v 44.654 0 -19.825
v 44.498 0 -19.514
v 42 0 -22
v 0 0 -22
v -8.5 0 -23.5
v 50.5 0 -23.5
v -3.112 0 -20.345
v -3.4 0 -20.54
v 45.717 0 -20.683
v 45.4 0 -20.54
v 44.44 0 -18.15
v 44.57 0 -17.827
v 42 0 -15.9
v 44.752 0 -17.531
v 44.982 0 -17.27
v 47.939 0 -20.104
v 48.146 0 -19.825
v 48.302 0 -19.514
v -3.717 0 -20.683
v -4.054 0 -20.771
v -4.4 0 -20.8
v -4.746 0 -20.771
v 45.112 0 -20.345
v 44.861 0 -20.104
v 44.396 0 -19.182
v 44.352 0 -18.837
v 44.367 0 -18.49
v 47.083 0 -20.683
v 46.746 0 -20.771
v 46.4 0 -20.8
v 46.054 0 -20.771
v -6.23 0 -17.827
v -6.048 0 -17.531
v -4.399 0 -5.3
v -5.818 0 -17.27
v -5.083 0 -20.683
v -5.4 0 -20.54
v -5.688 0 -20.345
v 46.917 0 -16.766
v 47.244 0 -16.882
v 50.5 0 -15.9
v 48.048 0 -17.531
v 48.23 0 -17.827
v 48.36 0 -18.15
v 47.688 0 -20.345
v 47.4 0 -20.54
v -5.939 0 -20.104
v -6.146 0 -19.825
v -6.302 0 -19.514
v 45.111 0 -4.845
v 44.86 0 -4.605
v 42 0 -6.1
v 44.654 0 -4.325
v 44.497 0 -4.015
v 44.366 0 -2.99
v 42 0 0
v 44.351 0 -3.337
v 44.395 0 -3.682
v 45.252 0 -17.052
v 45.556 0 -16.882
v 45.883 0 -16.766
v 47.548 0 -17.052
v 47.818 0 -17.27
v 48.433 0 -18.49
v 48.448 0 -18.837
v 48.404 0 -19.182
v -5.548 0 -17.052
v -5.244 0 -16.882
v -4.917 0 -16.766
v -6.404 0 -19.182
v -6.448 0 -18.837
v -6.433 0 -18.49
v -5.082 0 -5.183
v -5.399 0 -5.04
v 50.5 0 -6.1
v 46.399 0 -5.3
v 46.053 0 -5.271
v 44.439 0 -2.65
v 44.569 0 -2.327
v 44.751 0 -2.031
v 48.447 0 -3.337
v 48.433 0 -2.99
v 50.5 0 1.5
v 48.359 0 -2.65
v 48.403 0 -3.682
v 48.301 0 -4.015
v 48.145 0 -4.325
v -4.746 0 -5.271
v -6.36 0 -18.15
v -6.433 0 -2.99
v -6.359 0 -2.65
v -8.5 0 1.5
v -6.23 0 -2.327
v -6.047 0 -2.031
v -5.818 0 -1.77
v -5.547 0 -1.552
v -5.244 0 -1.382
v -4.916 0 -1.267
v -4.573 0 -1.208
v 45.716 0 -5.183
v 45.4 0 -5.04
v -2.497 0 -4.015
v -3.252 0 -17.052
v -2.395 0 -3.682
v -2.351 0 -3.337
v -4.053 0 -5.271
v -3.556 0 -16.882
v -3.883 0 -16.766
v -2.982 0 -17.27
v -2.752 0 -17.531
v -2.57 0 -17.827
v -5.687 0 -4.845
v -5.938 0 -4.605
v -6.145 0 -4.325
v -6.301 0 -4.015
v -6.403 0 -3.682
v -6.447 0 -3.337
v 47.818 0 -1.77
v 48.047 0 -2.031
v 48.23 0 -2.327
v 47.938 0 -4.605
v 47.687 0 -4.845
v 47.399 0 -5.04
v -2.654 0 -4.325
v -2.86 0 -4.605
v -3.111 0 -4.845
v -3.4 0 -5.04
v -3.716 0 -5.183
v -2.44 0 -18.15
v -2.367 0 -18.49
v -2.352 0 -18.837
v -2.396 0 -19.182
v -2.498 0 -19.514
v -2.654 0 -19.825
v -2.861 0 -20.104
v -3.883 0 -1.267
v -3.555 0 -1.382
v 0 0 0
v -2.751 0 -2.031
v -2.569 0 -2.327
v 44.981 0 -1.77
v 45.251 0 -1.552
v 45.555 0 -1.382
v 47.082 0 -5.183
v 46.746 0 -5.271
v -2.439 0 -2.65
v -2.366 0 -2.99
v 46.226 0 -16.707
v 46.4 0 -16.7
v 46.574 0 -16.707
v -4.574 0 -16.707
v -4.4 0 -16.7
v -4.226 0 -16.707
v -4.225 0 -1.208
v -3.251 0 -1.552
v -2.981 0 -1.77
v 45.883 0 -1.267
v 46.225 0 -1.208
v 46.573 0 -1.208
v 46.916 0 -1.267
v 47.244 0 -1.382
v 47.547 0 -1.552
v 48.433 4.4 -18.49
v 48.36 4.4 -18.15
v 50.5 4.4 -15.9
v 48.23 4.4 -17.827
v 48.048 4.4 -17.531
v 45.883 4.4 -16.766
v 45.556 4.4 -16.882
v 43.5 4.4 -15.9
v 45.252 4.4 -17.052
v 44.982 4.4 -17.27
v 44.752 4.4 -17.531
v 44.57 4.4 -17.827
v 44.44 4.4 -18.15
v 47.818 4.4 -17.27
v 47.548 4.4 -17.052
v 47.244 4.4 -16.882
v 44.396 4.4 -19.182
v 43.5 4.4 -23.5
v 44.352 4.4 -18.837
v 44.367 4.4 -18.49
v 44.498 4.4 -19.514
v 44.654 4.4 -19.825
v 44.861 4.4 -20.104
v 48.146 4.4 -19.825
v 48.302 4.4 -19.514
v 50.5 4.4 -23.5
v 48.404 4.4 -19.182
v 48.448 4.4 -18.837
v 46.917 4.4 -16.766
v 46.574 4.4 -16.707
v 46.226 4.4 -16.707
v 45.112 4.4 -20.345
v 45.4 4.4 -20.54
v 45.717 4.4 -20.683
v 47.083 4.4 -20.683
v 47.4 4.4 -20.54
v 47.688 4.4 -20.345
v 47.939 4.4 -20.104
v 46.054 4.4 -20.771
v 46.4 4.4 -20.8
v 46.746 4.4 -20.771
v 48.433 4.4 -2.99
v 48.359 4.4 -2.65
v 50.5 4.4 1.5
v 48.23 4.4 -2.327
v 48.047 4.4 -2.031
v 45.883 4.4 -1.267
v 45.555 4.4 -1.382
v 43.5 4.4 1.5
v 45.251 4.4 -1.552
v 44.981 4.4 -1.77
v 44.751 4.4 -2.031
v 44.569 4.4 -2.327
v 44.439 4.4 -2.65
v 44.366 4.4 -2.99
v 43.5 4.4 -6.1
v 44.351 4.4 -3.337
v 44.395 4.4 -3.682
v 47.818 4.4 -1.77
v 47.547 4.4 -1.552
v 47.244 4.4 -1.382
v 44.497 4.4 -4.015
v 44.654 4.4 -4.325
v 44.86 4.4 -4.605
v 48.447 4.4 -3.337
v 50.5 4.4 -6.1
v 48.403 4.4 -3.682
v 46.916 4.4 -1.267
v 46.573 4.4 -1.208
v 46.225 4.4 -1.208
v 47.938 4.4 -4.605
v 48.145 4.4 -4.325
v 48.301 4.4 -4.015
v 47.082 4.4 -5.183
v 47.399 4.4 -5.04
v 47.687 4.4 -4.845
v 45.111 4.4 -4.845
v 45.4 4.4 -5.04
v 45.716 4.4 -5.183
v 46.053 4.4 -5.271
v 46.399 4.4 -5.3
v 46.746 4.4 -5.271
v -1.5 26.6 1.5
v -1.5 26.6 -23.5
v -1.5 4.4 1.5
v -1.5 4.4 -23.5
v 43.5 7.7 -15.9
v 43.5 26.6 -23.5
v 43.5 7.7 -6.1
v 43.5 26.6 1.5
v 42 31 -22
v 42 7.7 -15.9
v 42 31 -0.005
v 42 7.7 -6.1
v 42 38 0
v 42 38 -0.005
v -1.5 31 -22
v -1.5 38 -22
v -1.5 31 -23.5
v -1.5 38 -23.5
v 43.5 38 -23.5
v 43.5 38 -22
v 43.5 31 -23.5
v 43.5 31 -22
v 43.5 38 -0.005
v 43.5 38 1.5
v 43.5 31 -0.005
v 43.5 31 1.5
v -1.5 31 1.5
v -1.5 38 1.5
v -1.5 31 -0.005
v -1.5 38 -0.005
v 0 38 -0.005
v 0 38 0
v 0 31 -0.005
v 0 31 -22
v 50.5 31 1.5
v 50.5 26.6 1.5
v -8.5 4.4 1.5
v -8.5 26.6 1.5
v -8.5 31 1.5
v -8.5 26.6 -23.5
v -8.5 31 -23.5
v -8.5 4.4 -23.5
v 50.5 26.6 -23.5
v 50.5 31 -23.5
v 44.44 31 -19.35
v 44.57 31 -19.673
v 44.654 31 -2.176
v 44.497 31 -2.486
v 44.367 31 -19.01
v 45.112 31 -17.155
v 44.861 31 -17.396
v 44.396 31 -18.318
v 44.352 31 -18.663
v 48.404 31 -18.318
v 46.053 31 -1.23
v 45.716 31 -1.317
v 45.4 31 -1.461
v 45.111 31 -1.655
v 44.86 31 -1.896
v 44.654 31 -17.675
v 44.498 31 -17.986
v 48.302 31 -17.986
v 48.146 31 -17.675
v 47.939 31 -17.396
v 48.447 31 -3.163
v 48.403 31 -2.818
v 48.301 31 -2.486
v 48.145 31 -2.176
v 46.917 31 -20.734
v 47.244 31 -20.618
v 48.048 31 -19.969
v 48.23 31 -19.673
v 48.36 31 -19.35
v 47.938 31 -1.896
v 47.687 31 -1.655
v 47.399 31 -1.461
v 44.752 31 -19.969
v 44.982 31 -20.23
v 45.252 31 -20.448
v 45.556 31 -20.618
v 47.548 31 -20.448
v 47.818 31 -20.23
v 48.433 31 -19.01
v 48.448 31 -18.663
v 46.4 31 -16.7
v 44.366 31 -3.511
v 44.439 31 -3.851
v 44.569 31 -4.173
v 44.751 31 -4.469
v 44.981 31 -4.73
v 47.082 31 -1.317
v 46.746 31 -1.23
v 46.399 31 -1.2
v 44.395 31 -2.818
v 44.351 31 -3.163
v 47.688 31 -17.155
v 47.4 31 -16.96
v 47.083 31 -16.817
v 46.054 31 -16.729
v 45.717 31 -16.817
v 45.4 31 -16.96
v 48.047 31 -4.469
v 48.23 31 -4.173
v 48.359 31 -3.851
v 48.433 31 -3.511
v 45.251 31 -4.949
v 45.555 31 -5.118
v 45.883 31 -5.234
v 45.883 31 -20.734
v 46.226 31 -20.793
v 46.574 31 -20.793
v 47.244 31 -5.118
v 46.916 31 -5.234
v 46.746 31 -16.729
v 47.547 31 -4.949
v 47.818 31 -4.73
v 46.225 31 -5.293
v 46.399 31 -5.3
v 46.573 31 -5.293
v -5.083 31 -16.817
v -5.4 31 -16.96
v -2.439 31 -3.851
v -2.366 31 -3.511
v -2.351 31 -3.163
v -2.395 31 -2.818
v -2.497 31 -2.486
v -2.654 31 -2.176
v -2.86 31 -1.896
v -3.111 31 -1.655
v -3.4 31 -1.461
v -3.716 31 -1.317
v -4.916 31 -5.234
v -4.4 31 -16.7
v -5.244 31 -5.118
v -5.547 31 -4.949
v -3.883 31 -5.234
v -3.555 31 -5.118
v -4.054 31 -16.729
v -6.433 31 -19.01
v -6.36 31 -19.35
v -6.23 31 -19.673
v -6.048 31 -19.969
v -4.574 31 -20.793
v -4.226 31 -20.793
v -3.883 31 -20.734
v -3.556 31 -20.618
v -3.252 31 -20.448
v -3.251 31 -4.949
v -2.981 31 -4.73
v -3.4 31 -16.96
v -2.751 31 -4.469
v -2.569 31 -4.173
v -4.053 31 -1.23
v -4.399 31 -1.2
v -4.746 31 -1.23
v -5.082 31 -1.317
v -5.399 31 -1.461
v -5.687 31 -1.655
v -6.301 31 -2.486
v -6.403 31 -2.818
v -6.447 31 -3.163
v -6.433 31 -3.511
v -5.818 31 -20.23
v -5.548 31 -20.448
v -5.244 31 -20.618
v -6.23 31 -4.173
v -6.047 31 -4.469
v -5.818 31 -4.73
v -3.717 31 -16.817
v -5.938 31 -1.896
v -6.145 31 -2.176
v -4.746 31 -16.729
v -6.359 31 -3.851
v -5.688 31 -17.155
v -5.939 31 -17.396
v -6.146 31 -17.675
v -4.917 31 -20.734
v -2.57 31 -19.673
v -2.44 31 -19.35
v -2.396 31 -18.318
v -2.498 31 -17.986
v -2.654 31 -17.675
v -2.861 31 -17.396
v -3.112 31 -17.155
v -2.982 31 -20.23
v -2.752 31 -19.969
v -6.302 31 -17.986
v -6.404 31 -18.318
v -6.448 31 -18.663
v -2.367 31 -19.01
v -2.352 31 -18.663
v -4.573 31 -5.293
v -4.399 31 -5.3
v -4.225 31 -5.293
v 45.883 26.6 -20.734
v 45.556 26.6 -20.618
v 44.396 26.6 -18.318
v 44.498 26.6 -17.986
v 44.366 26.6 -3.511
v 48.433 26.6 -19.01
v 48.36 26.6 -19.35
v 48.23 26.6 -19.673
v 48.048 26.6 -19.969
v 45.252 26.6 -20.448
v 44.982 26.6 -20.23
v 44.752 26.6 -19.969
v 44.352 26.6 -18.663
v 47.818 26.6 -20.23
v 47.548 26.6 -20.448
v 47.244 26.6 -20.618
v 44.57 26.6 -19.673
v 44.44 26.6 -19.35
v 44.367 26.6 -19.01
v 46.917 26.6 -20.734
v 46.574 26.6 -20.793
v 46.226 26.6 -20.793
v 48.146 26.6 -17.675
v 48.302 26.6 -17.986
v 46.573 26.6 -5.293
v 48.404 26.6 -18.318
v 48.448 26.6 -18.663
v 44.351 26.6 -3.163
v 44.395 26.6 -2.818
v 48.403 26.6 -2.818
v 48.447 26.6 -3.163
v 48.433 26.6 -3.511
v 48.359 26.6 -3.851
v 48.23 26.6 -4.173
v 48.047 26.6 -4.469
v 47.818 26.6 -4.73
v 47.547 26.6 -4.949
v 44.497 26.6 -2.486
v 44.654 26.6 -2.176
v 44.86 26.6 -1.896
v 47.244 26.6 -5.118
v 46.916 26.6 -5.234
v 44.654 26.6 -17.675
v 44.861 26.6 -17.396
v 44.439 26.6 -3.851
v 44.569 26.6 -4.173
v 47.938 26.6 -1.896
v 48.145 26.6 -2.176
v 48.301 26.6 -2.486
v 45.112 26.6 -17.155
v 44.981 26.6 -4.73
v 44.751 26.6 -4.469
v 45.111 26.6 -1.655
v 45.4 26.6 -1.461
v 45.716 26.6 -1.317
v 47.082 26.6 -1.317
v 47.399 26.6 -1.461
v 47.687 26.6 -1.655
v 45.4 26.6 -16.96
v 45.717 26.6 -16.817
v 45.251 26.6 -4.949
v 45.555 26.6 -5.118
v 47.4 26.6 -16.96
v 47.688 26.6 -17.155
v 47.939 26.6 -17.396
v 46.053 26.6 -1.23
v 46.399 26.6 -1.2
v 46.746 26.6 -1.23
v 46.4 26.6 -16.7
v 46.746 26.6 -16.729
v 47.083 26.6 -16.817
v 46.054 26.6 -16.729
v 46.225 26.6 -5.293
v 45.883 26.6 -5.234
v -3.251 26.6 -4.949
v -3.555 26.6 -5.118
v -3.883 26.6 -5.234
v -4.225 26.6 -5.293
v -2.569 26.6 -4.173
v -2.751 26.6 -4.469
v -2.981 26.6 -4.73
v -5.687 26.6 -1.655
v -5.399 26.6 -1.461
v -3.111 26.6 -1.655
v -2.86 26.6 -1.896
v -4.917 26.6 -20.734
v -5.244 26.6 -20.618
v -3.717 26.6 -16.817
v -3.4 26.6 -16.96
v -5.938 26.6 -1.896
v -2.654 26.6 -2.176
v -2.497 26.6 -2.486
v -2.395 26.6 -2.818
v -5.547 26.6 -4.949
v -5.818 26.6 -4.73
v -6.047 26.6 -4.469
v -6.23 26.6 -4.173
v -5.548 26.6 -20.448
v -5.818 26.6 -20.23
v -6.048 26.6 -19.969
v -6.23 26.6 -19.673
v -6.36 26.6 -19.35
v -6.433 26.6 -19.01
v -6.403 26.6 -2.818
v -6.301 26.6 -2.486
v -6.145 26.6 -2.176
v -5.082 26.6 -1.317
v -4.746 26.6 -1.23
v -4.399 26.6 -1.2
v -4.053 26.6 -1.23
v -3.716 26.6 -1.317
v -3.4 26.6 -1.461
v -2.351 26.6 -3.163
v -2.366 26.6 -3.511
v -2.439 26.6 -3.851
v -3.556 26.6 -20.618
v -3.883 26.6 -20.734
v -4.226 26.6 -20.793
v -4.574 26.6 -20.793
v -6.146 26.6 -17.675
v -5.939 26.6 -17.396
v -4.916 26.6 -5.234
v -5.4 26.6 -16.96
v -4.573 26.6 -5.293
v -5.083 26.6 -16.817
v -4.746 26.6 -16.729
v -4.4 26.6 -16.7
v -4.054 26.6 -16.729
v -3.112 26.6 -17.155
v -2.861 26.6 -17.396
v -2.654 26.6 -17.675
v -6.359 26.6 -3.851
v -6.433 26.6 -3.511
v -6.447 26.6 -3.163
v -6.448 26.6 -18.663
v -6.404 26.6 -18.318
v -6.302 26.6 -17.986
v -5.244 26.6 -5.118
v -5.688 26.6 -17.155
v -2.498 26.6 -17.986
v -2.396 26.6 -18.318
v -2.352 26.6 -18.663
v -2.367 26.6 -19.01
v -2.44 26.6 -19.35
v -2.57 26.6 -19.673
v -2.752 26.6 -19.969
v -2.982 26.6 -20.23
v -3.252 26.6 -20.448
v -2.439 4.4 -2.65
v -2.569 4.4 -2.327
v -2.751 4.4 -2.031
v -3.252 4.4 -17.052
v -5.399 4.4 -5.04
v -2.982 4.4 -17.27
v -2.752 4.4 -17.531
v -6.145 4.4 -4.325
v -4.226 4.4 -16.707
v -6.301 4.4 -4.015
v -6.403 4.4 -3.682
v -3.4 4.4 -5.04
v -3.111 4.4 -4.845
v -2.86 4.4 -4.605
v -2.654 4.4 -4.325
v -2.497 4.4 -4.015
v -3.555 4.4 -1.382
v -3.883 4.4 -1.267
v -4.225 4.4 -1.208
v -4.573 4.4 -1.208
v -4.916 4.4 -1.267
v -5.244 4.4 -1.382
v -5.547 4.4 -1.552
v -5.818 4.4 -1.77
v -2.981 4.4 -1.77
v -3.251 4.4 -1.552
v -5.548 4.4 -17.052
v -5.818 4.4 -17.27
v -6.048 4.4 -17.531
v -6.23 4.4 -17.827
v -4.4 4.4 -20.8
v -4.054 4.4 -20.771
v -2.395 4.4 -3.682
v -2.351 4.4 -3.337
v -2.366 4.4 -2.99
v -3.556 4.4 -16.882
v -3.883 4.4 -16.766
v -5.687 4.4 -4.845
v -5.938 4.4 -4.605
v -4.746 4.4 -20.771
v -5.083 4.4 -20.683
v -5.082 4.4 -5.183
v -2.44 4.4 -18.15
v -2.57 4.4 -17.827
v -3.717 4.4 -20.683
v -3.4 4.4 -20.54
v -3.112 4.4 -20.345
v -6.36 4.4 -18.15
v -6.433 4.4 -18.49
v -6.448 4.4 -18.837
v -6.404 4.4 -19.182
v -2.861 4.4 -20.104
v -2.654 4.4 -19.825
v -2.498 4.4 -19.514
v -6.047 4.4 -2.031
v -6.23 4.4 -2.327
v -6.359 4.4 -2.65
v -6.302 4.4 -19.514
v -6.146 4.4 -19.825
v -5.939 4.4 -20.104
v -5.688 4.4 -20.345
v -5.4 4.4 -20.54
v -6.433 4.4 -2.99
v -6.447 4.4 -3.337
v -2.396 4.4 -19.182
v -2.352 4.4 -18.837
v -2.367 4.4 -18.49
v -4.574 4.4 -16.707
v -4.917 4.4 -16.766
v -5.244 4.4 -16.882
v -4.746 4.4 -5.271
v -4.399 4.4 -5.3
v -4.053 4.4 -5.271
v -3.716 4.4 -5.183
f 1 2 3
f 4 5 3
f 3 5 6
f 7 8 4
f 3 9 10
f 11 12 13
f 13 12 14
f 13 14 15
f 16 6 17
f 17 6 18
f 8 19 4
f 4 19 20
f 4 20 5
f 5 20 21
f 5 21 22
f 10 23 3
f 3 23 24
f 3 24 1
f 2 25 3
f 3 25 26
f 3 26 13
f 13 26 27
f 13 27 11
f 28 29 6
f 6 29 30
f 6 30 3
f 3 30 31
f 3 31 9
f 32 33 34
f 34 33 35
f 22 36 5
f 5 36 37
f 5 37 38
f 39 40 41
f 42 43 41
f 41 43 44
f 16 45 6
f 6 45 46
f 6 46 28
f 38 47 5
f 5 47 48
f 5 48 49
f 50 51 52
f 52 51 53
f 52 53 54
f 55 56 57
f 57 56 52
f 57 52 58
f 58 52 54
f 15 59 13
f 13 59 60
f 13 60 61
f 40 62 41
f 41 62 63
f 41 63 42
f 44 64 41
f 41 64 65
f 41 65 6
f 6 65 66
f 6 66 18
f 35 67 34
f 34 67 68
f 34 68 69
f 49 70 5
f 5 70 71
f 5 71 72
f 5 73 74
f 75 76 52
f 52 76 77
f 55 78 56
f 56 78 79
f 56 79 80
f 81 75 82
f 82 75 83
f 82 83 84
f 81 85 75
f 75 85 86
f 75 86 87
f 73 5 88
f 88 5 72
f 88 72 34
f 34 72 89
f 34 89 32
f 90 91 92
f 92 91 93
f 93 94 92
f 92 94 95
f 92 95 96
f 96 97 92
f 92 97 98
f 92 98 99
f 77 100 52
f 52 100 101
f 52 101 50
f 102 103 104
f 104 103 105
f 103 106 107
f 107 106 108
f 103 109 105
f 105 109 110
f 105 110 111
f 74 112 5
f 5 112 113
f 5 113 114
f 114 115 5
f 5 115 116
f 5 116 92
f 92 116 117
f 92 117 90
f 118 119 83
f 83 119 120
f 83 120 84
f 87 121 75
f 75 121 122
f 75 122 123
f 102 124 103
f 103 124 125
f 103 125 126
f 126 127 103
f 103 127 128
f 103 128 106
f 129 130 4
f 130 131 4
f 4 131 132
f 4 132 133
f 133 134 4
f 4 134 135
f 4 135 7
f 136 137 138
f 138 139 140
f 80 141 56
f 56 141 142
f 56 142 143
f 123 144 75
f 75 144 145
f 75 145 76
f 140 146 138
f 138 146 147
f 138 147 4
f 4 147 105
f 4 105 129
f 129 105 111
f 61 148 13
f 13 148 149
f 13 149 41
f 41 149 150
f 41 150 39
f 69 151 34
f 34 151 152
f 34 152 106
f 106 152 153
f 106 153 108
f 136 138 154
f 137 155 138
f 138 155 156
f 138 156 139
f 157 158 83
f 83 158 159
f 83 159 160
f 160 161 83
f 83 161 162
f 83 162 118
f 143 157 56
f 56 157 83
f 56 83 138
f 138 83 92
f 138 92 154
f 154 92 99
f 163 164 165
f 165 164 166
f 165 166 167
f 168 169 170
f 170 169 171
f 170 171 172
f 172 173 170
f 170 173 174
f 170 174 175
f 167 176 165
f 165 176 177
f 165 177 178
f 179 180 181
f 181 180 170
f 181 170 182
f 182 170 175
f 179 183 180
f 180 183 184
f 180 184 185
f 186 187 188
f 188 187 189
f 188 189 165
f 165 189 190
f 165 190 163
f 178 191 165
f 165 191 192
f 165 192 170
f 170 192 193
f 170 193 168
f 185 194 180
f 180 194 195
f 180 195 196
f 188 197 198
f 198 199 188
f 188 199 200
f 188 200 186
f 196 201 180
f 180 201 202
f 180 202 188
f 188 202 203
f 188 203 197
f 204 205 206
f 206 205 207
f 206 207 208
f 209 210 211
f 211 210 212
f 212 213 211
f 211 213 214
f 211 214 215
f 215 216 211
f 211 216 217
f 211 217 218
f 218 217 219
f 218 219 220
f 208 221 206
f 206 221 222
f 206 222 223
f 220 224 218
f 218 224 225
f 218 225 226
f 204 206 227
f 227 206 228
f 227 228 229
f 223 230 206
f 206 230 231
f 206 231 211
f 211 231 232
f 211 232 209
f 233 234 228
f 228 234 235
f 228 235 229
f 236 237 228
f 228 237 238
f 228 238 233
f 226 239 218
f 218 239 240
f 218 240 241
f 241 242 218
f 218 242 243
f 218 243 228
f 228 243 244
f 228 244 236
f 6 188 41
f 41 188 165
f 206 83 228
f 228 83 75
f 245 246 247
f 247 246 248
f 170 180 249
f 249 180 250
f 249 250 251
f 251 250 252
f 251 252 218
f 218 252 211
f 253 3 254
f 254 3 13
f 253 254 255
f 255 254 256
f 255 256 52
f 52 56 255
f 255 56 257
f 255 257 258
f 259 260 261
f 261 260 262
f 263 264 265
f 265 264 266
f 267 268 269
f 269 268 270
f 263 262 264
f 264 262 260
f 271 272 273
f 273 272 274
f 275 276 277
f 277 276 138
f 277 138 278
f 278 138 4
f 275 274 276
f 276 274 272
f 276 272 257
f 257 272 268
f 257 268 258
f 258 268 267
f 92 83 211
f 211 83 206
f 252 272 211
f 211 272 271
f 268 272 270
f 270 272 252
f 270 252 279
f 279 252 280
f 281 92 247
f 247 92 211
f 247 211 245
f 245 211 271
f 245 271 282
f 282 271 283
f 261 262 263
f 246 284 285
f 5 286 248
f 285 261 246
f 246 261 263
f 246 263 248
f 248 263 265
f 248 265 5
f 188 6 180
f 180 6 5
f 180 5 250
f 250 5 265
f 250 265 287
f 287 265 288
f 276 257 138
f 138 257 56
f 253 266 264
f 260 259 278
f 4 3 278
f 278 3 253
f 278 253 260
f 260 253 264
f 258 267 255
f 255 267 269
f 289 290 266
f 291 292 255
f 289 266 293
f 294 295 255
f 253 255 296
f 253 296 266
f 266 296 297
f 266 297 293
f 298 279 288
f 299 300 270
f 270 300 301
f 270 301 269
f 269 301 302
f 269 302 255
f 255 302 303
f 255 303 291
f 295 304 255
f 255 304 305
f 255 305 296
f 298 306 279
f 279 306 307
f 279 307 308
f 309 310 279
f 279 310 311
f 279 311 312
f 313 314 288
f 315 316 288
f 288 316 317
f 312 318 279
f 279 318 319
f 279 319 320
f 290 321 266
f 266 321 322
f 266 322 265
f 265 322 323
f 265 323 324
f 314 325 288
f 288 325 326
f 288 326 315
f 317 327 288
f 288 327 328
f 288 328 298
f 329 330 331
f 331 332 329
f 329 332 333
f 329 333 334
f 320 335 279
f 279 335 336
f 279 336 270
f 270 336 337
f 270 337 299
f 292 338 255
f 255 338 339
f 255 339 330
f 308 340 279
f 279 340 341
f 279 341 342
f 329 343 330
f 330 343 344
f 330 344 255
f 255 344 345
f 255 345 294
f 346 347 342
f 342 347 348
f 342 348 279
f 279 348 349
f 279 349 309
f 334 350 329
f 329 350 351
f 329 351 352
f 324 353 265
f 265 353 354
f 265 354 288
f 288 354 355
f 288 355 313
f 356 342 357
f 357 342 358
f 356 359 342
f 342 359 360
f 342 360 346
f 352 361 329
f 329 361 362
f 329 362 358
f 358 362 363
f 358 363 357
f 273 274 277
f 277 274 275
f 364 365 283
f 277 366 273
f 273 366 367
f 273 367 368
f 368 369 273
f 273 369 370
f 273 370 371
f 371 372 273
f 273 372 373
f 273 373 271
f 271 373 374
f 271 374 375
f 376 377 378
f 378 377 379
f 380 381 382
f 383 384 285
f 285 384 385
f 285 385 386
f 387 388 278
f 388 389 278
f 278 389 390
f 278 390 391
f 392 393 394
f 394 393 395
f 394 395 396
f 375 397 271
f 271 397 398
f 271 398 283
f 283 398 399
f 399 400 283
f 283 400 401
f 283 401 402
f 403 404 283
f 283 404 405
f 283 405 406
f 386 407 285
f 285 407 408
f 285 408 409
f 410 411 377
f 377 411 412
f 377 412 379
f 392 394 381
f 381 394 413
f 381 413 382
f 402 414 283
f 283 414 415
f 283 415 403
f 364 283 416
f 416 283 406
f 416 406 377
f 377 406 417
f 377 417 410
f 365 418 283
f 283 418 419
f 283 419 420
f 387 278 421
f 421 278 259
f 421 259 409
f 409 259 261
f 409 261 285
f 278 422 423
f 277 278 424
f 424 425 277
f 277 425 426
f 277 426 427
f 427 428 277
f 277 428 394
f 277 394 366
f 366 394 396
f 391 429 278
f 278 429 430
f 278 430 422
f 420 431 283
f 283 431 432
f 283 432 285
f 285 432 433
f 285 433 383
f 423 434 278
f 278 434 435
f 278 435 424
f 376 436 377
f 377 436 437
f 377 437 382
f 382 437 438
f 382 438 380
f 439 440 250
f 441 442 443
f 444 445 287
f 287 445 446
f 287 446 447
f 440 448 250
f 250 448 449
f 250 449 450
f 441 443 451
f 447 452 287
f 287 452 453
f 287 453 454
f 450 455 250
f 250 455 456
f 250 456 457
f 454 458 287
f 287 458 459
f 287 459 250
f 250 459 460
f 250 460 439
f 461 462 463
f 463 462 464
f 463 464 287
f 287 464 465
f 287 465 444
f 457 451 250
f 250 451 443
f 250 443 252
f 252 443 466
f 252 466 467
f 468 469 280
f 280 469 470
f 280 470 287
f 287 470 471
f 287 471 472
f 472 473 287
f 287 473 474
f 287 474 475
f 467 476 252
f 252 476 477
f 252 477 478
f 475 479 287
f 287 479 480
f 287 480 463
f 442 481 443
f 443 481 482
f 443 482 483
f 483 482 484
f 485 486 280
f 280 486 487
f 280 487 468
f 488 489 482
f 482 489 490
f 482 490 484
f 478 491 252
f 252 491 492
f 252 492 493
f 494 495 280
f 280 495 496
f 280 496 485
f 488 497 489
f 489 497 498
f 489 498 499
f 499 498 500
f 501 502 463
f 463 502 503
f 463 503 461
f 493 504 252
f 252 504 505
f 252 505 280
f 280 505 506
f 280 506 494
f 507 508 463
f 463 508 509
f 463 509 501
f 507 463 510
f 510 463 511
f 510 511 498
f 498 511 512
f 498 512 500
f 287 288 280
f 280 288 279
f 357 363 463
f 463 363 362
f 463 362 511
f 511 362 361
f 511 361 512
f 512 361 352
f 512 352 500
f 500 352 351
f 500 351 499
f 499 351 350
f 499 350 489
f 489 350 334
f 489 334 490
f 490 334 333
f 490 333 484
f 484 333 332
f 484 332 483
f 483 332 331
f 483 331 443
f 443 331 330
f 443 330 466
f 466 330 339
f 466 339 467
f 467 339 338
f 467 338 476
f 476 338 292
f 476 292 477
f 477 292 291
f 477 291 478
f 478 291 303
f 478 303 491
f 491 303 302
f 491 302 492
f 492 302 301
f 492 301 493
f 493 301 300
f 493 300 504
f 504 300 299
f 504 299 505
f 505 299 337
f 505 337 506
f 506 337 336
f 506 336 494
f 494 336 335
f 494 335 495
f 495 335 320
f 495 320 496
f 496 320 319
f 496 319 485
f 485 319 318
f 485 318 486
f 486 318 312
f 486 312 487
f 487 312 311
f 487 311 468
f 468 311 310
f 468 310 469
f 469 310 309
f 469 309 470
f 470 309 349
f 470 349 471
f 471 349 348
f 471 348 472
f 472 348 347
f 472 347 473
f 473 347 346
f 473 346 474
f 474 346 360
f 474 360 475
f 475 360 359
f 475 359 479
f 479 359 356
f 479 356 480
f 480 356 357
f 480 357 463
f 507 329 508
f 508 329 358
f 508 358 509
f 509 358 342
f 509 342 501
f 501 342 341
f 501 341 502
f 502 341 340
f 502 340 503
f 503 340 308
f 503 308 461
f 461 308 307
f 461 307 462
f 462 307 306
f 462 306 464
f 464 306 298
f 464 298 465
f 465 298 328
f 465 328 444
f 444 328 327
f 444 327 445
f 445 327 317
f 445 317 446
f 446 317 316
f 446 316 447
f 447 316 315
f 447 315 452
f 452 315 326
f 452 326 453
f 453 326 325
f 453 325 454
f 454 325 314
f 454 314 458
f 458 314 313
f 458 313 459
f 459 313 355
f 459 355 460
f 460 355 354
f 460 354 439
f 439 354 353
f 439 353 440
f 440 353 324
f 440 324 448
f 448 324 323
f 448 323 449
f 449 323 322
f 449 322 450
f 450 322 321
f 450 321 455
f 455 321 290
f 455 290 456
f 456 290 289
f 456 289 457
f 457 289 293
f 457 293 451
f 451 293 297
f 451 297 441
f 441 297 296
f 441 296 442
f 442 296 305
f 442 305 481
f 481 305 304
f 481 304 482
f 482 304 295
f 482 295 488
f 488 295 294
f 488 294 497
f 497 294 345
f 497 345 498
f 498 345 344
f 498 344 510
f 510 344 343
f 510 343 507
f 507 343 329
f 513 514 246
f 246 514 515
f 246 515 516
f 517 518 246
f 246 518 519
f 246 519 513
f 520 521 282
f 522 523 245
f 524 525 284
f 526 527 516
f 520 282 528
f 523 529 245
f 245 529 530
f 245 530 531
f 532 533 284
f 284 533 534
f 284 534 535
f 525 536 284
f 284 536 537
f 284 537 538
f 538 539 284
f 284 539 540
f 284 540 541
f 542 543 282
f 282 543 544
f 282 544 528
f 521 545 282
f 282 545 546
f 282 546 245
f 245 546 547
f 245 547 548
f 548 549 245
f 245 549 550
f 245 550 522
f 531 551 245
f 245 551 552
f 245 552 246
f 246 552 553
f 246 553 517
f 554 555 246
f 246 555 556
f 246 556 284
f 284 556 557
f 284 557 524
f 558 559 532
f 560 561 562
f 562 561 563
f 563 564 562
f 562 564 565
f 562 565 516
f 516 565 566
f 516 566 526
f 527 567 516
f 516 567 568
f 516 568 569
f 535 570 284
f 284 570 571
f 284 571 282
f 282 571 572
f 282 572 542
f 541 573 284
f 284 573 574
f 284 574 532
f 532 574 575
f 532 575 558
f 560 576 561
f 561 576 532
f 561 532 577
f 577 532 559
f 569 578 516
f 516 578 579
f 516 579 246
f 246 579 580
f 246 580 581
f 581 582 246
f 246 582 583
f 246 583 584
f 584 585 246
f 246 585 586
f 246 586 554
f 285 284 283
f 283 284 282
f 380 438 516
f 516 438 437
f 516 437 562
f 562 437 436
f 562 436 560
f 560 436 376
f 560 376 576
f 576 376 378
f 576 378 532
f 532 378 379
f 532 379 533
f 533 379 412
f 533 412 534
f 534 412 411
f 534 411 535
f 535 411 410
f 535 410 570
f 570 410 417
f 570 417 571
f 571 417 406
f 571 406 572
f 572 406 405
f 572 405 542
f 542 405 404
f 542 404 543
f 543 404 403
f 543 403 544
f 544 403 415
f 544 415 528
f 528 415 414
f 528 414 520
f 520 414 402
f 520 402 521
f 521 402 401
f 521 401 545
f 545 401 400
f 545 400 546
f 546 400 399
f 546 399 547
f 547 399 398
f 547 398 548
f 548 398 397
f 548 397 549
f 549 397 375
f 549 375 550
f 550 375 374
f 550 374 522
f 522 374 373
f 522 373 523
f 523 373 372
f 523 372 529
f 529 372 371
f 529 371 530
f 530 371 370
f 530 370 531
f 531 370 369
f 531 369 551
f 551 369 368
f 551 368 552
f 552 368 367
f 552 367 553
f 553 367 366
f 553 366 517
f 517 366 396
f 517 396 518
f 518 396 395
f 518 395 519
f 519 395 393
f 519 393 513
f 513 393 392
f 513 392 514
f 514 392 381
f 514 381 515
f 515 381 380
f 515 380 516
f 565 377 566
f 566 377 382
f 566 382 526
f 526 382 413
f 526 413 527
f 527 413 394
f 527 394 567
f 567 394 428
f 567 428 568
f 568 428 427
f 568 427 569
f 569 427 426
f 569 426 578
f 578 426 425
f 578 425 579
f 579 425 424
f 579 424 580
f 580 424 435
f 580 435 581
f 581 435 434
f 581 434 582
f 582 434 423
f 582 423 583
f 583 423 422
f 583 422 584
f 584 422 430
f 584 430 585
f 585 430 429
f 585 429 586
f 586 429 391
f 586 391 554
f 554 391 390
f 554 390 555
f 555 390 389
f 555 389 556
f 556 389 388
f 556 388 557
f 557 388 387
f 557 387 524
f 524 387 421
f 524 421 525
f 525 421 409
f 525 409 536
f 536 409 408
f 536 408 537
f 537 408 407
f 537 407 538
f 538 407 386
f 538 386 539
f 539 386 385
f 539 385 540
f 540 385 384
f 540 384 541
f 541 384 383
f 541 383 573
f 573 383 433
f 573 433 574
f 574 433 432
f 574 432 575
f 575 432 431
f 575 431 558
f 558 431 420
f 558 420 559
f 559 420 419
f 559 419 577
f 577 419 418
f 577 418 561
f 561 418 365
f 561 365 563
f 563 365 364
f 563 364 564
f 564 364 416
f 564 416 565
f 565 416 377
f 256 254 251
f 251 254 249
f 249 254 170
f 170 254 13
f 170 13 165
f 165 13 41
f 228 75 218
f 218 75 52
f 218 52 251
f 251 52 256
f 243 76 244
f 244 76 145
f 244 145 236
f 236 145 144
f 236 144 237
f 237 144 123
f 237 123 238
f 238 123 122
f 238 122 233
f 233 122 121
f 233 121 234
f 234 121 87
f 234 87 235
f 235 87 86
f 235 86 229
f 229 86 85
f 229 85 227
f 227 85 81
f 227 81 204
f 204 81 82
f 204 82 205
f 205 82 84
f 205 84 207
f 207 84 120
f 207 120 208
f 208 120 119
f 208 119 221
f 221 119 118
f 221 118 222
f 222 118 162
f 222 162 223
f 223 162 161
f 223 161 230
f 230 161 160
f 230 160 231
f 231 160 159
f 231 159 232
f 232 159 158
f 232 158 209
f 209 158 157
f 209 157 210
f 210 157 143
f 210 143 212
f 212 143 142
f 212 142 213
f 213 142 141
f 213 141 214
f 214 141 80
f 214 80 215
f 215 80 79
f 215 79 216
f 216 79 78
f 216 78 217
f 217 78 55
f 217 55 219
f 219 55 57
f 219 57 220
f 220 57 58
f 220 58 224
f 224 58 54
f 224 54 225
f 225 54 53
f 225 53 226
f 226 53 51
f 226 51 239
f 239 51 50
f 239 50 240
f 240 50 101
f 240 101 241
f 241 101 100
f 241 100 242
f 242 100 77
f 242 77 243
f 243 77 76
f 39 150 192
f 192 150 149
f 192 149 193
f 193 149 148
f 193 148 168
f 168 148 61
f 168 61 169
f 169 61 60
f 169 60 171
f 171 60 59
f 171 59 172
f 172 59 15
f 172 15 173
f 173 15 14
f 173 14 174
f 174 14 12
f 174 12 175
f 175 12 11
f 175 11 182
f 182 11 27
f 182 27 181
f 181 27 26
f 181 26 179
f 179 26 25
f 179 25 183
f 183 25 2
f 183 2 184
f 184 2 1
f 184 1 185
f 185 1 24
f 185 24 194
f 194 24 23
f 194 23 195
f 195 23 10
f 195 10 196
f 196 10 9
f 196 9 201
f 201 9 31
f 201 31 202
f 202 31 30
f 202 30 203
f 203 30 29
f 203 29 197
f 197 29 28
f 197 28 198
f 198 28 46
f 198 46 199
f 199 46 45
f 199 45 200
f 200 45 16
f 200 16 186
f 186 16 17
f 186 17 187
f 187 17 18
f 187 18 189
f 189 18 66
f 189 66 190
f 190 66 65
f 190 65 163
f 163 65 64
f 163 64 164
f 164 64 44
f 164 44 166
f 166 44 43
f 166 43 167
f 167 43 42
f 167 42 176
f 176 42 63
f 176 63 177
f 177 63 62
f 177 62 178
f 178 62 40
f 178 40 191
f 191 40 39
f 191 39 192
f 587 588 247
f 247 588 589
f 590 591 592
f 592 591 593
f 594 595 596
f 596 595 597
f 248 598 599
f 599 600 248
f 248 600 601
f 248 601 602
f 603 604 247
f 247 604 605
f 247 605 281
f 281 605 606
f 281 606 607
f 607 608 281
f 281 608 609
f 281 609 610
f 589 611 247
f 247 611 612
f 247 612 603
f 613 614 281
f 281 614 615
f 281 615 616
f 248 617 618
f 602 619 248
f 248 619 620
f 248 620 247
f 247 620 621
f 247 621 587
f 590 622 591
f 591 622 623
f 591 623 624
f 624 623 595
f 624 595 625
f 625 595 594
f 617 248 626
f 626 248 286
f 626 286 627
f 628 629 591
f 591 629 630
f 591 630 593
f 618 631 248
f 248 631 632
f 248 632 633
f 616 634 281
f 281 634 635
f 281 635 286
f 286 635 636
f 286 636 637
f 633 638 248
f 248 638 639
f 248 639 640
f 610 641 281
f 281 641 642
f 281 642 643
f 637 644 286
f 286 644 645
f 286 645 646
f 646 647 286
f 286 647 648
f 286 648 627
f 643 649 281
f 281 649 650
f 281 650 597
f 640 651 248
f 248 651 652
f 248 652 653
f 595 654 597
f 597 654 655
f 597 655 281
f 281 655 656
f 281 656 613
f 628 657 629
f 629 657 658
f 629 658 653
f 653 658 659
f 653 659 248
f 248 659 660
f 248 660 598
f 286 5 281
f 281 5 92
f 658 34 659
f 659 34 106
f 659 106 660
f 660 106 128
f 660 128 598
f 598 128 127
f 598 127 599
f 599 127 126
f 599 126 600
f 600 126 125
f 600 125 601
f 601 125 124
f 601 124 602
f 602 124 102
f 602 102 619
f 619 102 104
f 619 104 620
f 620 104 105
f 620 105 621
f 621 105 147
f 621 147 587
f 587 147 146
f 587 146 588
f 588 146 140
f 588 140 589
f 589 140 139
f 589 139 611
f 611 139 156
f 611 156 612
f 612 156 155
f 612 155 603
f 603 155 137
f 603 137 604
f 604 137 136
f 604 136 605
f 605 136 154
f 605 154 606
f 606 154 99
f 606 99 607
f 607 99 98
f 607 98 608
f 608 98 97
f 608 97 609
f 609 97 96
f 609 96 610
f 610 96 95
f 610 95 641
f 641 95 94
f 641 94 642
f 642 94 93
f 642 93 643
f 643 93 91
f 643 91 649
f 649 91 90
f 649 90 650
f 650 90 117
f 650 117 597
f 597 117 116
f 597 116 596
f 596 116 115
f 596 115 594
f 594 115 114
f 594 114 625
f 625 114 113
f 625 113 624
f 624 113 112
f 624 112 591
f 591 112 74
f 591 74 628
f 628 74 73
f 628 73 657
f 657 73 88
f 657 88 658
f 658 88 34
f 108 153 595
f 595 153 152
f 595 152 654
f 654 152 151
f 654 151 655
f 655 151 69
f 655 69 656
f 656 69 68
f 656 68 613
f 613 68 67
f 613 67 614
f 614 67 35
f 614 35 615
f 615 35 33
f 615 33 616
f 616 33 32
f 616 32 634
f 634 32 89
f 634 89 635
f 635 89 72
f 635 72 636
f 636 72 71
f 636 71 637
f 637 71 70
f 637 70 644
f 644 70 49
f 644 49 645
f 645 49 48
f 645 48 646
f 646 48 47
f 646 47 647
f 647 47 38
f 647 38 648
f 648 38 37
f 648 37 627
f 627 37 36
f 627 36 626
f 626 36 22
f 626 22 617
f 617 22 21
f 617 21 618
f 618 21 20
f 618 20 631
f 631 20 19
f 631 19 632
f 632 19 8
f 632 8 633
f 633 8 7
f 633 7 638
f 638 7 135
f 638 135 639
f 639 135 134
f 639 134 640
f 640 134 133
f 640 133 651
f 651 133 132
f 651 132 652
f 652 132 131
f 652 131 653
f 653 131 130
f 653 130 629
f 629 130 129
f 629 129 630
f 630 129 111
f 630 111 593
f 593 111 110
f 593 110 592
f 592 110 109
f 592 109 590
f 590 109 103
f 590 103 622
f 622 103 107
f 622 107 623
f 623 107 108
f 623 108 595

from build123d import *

# Parameters (mm, degrees)
SKETCH1_W               = 45
SKETCH1_H               = 25
SKETCH1_W_2             = 42
SKETCH1_H_2             = 22
BOSS_EXTRUDE1_DEPTH     = 38
CUT_EXTRUDE2_START      = -46
SKETCH3_W               = 21.995206391
SKETCH3_H               = 7
CUT_EXTRUDE2_DEPTH      = 47
SKETCH4_W               = 25
SKETCH4_H               = 4.4
BOSS_EXTRUDE3_DEPTH     = 7
SKETCH8_R               = 2.05
CUT_EXTRUDE5_DEPTH      = 4.4
SKETCH6_W               = 9.8
SKETCH6_H               = 10.757060019
CUT_EXTRUDE4_DEPTH      = 8
CUT_EXTRUDE4_DEPTH_BACK = 7
MIRROR2_START           = -46
MIRROR2_COPY_1_SKETCH_W = 21.995206391
MIRROR2_COPY_1_SKETCH_H = 7
MIRROR2_COPY_1_DEPTH    = 47
MIRROR2_COPY_2_SKETCH_W = 25
MIRROR2_COPY_2_SKETCH_H = 4.4
MIRROR2_COPY_2_DEPTH    = 7
MIRROR2_COPY_3_SKETCH_R = 2.05
MIRROR2_COPY_3_DEPTH    = 4.4
SKETCH6_2_W             = 9.8
SKETCH6_2_H             = 10.757060019
CUT_EXTRUDE6_DEPTH      = 15


with BuildPart() as part:
    # Sketch1 → Boss-Extrude1 (new body)
    with BuildSketch(Plane(origin=(0, 0, 0), x_dir=(1, 0, 0), z_dir=(0, 1, 0))):
        with Locations((21, 11)):
            Rectangle(SKETCH1_W, SKETCH1_H)
        with Locations((21, 11)):
            Rectangle(SKETCH1_W_2, SKETCH1_H_2, mode=Mode.SUBTRACT)
    extrude(amount=BOSS_EXTRUDE1_DEPTH)

    # Sketch3 → Cut-Extrude2 (cut)
    with BuildSketch(Plane(origin=(43.5, 0, 0), x_dir=(0, 0, -1), z_dir=(1, 0, 0)).offset(CUT_EXTRUDE2_START)):
        with Locations((11.002396805, 34.5)):
            Rectangle(SKETCH3_W, SKETCH3_H)
    cut_extrude2 = extrude(amount=CUT_EXTRUDE2_DEPTH, mode=Mode.SUBTRACT)

    # Sketch4 → Boss-Extrude3 (add)
    with BuildSketch(Plane(origin=(43.5, 0, 0), x_dir=(0, 0, -1), z_dir=(1, 0, 0))):
        with Locations((11, 28.8)):
            Rectangle(SKETCH4_W, SKETCH4_H)
    boss_extrude3 = extrude(amount=BOSS_EXTRUDE3_DEPTH)

    # Sketch8 → Cut-Extrude5 (cut)
    with BuildSketch(Plane(origin=(0, 31, 0), x_dir=(1, 0, 0), z_dir=(0, 1, 0))):
        with Locations((46.4, 18.75)):
            Circle(SKETCH8_R)
        with Locations((46.399285585, 3.250377991)):
            Circle(SKETCH8_R)
    cut_extrude5 = extrude(amount=-CUT_EXTRUDE5_DEPTH, mode=Mode.SUBTRACT)

    # Mirror1: Cut-Extrude2, Boss-Extrude3, Cut-Extrude5 across plane
    add(cut_extrude2.mirror(Plane(origin=(21, 0, 0), x_dir=(0, 0, 1), z_dir=(1, 0, 0))), mode=Mode.SUBTRACT)
    add(boss_extrude3.mirror(Plane(origin=(21, 0, 0), x_dir=(0, 0, 1), z_dir=(1, 0, 0))))
    add(cut_extrude5.mirror(Plane(origin=(21, 0, 0), x_dir=(0, 0, 1), z_dir=(1, 0, 0))), mode=Mode.SUBTRACT)

    # Sketch6 → Cut-Extrude4 (cut, two sides)
    with BuildSketch(Plane(origin=(43.5, 0, 0), x_dir=(0, 0, -1), z_dir=(1, 0, 0))) as cut_extrude4_sk:
        with Locations((11, 2.32146999)):
            Rectangle(SKETCH6_W, SKETCH6_H)
    extrude(amount=CUT_EXTRUDE4_DEPTH, mode=Mode.SUBTRACT)
    extrude(cut_extrude4_sk.sketch, amount=-CUT_EXTRUDE4_DEPTH_BACK, mode=Mode.SUBTRACT)

    # Mirror2: Cut-Extrude2, Boss-Extrude3, Cut-Extrude5 across plane
    add(cut_extrude2.mirror(Plane.ZX.offset(15.5)), mode=Mode.SUBTRACT)
    add(boss_extrude3.mirror(Plane.ZX.offset(15.5)))
    add(cut_extrude5.mirror(Plane.ZX.offset(15.5)), mode=Mode.SUBTRACT)

    # Mirror2 copy 1 sketch → Mirror2 copy 1 (cut)
    with BuildSketch(Plane(origin=(-1.5, 31, 0), x_dir=(0, 0, -1), z_dir=(-1, 0, 0)).offset(MIRROR2_START)):
        with Locations((11.002396805, 34.5)):
            Rectangle(MIRROR2_COPY_1_SKETCH_W, MIRROR2_COPY_1_SKETCH_H)
    extrude(amount=MIRROR2_COPY_1_DEPTH, mode=Mode.SUBTRACT)

    # Mirror2 copy 2 sketch → Mirror2 copy 2 (add)
    with BuildSketch(Plane(origin=(-1.5, 31, 0), x_dir=(0, 0, -1), z_dir=(-1, 0, 0))):
        with Locations((11, 28.8)):
            Rectangle(MIRROR2_COPY_2_SKETCH_W, MIRROR2_COPY_2_SKETCH_H)
    extrude(amount=MIRROR2_COPY_2_DEPTH)

    # Mirror2 copy 3 sketch → Mirror2 copy 3 (cut)
    with BuildSketch(Plane(origin=(42, 0, 0), x_dir=(-1, 0, 0), z_dir=(0, -1, 0))):
        with Locations((46.4, 18.75)):
            Circle(MIRROR2_COPY_3_SKETCH_R)
        with Locations((46.399285585, 3.250377991)):
            Circle(MIRROR2_COPY_3_SKETCH_R)
    extrude(amount=-MIRROR2_COPY_3_DEPTH, mode=Mode.SUBTRACT)

    # Sketch6<2> → Cut-Extrude6 (cut)
    with BuildSketch(Plane(origin=(43.5, 0, 0), x_dir=(0, 0, -1), z_dir=(1, 0, 0))):
        with Locations((11, 2.32146999)):
            Rectangle(SKETCH6_2_W, SKETCH6_2_H)
    extrude(amount=CUT_EXTRUDE6_DEPTH, mode=Mode.SUBTRACT)


solid = part.part
